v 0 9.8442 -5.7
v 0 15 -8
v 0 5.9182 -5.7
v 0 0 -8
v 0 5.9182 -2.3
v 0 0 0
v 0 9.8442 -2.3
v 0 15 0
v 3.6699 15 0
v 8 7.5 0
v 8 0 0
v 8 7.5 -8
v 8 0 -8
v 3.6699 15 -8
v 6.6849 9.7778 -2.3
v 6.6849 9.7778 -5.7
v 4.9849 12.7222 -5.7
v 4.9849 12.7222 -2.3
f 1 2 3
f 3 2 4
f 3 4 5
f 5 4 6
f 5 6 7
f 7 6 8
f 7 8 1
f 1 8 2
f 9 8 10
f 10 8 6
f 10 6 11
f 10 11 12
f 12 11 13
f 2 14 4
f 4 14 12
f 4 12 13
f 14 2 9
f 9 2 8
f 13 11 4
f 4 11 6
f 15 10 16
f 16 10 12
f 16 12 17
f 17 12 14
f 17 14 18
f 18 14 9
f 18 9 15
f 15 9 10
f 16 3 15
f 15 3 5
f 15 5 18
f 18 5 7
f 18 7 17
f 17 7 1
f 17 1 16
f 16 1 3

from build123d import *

# Parameters (mm, degrees)
SKETCH_1_W          = 8
SKETCH_1_H          = 8
EXTRUDE_1_DEPTH     = 15
CUT_EXTRUDE_1_REACH = 20.788
SKETCH_3_W          = 3.4
SKETCH_3_H          = 3.4
CUT_EXTRUDE_2_DEPTH = 10


with BuildPart() as part:
    # 草图1 → 凸台-拉伸1 (new body)
    with BuildSketch(Plane(origin=(0, 0, 0), x_dir=(1, 0, 0), z_dir=(0, 1, 0))):
        with Locations((4, 4)):
            Rectangle(SKETCH_1_W, SKETCH_1_H)
    extrude(amount=EXTRUDE_1_DEPTH)

    # 草图2 → 切除-拉伸1 (cut, up to next)
    with BuildSketch(Plane(origin=(0, 0, -8), x_dir=(-1, 0, 0), z_dir=(0, 0, -1)), mode=Mode.PRIVATE) as cut_extrude_1_sk1:
        Polygon((-8, 7.5), (-3.669872981, 15), (-8, 15), align=None)
    cut_extrude_1_tool1 = extrude(cut_extrude_1_sk1.sketch, amount=-CUT_EXTRUDE_1_REACH, mode=Mode.PRIVATE) & part.part
    add(cut_extrude_1_tool1.solids().sort_by_distance((6.556624, 12.5, -8))[0], mode=Mode.SUBTRACT)

    # 草图3 → 切除-拉伸2 (cut)
    with BuildSketch(Plane(origin=(9.247595264, 5.339101615, 0), x_dir=(0, 0, -1), z_dir=(0.8660254037844417, 0.4999999999999948, 0))):
        with Locations((4, 6.825317547)):
            Rectangle(SKETCH_3_W, SKETCH_3_H)
    extrude(amount=-CUT_EXTRUDE_2_DEPTH, mode=Mode.SUBTRACT)


solid = part.part
